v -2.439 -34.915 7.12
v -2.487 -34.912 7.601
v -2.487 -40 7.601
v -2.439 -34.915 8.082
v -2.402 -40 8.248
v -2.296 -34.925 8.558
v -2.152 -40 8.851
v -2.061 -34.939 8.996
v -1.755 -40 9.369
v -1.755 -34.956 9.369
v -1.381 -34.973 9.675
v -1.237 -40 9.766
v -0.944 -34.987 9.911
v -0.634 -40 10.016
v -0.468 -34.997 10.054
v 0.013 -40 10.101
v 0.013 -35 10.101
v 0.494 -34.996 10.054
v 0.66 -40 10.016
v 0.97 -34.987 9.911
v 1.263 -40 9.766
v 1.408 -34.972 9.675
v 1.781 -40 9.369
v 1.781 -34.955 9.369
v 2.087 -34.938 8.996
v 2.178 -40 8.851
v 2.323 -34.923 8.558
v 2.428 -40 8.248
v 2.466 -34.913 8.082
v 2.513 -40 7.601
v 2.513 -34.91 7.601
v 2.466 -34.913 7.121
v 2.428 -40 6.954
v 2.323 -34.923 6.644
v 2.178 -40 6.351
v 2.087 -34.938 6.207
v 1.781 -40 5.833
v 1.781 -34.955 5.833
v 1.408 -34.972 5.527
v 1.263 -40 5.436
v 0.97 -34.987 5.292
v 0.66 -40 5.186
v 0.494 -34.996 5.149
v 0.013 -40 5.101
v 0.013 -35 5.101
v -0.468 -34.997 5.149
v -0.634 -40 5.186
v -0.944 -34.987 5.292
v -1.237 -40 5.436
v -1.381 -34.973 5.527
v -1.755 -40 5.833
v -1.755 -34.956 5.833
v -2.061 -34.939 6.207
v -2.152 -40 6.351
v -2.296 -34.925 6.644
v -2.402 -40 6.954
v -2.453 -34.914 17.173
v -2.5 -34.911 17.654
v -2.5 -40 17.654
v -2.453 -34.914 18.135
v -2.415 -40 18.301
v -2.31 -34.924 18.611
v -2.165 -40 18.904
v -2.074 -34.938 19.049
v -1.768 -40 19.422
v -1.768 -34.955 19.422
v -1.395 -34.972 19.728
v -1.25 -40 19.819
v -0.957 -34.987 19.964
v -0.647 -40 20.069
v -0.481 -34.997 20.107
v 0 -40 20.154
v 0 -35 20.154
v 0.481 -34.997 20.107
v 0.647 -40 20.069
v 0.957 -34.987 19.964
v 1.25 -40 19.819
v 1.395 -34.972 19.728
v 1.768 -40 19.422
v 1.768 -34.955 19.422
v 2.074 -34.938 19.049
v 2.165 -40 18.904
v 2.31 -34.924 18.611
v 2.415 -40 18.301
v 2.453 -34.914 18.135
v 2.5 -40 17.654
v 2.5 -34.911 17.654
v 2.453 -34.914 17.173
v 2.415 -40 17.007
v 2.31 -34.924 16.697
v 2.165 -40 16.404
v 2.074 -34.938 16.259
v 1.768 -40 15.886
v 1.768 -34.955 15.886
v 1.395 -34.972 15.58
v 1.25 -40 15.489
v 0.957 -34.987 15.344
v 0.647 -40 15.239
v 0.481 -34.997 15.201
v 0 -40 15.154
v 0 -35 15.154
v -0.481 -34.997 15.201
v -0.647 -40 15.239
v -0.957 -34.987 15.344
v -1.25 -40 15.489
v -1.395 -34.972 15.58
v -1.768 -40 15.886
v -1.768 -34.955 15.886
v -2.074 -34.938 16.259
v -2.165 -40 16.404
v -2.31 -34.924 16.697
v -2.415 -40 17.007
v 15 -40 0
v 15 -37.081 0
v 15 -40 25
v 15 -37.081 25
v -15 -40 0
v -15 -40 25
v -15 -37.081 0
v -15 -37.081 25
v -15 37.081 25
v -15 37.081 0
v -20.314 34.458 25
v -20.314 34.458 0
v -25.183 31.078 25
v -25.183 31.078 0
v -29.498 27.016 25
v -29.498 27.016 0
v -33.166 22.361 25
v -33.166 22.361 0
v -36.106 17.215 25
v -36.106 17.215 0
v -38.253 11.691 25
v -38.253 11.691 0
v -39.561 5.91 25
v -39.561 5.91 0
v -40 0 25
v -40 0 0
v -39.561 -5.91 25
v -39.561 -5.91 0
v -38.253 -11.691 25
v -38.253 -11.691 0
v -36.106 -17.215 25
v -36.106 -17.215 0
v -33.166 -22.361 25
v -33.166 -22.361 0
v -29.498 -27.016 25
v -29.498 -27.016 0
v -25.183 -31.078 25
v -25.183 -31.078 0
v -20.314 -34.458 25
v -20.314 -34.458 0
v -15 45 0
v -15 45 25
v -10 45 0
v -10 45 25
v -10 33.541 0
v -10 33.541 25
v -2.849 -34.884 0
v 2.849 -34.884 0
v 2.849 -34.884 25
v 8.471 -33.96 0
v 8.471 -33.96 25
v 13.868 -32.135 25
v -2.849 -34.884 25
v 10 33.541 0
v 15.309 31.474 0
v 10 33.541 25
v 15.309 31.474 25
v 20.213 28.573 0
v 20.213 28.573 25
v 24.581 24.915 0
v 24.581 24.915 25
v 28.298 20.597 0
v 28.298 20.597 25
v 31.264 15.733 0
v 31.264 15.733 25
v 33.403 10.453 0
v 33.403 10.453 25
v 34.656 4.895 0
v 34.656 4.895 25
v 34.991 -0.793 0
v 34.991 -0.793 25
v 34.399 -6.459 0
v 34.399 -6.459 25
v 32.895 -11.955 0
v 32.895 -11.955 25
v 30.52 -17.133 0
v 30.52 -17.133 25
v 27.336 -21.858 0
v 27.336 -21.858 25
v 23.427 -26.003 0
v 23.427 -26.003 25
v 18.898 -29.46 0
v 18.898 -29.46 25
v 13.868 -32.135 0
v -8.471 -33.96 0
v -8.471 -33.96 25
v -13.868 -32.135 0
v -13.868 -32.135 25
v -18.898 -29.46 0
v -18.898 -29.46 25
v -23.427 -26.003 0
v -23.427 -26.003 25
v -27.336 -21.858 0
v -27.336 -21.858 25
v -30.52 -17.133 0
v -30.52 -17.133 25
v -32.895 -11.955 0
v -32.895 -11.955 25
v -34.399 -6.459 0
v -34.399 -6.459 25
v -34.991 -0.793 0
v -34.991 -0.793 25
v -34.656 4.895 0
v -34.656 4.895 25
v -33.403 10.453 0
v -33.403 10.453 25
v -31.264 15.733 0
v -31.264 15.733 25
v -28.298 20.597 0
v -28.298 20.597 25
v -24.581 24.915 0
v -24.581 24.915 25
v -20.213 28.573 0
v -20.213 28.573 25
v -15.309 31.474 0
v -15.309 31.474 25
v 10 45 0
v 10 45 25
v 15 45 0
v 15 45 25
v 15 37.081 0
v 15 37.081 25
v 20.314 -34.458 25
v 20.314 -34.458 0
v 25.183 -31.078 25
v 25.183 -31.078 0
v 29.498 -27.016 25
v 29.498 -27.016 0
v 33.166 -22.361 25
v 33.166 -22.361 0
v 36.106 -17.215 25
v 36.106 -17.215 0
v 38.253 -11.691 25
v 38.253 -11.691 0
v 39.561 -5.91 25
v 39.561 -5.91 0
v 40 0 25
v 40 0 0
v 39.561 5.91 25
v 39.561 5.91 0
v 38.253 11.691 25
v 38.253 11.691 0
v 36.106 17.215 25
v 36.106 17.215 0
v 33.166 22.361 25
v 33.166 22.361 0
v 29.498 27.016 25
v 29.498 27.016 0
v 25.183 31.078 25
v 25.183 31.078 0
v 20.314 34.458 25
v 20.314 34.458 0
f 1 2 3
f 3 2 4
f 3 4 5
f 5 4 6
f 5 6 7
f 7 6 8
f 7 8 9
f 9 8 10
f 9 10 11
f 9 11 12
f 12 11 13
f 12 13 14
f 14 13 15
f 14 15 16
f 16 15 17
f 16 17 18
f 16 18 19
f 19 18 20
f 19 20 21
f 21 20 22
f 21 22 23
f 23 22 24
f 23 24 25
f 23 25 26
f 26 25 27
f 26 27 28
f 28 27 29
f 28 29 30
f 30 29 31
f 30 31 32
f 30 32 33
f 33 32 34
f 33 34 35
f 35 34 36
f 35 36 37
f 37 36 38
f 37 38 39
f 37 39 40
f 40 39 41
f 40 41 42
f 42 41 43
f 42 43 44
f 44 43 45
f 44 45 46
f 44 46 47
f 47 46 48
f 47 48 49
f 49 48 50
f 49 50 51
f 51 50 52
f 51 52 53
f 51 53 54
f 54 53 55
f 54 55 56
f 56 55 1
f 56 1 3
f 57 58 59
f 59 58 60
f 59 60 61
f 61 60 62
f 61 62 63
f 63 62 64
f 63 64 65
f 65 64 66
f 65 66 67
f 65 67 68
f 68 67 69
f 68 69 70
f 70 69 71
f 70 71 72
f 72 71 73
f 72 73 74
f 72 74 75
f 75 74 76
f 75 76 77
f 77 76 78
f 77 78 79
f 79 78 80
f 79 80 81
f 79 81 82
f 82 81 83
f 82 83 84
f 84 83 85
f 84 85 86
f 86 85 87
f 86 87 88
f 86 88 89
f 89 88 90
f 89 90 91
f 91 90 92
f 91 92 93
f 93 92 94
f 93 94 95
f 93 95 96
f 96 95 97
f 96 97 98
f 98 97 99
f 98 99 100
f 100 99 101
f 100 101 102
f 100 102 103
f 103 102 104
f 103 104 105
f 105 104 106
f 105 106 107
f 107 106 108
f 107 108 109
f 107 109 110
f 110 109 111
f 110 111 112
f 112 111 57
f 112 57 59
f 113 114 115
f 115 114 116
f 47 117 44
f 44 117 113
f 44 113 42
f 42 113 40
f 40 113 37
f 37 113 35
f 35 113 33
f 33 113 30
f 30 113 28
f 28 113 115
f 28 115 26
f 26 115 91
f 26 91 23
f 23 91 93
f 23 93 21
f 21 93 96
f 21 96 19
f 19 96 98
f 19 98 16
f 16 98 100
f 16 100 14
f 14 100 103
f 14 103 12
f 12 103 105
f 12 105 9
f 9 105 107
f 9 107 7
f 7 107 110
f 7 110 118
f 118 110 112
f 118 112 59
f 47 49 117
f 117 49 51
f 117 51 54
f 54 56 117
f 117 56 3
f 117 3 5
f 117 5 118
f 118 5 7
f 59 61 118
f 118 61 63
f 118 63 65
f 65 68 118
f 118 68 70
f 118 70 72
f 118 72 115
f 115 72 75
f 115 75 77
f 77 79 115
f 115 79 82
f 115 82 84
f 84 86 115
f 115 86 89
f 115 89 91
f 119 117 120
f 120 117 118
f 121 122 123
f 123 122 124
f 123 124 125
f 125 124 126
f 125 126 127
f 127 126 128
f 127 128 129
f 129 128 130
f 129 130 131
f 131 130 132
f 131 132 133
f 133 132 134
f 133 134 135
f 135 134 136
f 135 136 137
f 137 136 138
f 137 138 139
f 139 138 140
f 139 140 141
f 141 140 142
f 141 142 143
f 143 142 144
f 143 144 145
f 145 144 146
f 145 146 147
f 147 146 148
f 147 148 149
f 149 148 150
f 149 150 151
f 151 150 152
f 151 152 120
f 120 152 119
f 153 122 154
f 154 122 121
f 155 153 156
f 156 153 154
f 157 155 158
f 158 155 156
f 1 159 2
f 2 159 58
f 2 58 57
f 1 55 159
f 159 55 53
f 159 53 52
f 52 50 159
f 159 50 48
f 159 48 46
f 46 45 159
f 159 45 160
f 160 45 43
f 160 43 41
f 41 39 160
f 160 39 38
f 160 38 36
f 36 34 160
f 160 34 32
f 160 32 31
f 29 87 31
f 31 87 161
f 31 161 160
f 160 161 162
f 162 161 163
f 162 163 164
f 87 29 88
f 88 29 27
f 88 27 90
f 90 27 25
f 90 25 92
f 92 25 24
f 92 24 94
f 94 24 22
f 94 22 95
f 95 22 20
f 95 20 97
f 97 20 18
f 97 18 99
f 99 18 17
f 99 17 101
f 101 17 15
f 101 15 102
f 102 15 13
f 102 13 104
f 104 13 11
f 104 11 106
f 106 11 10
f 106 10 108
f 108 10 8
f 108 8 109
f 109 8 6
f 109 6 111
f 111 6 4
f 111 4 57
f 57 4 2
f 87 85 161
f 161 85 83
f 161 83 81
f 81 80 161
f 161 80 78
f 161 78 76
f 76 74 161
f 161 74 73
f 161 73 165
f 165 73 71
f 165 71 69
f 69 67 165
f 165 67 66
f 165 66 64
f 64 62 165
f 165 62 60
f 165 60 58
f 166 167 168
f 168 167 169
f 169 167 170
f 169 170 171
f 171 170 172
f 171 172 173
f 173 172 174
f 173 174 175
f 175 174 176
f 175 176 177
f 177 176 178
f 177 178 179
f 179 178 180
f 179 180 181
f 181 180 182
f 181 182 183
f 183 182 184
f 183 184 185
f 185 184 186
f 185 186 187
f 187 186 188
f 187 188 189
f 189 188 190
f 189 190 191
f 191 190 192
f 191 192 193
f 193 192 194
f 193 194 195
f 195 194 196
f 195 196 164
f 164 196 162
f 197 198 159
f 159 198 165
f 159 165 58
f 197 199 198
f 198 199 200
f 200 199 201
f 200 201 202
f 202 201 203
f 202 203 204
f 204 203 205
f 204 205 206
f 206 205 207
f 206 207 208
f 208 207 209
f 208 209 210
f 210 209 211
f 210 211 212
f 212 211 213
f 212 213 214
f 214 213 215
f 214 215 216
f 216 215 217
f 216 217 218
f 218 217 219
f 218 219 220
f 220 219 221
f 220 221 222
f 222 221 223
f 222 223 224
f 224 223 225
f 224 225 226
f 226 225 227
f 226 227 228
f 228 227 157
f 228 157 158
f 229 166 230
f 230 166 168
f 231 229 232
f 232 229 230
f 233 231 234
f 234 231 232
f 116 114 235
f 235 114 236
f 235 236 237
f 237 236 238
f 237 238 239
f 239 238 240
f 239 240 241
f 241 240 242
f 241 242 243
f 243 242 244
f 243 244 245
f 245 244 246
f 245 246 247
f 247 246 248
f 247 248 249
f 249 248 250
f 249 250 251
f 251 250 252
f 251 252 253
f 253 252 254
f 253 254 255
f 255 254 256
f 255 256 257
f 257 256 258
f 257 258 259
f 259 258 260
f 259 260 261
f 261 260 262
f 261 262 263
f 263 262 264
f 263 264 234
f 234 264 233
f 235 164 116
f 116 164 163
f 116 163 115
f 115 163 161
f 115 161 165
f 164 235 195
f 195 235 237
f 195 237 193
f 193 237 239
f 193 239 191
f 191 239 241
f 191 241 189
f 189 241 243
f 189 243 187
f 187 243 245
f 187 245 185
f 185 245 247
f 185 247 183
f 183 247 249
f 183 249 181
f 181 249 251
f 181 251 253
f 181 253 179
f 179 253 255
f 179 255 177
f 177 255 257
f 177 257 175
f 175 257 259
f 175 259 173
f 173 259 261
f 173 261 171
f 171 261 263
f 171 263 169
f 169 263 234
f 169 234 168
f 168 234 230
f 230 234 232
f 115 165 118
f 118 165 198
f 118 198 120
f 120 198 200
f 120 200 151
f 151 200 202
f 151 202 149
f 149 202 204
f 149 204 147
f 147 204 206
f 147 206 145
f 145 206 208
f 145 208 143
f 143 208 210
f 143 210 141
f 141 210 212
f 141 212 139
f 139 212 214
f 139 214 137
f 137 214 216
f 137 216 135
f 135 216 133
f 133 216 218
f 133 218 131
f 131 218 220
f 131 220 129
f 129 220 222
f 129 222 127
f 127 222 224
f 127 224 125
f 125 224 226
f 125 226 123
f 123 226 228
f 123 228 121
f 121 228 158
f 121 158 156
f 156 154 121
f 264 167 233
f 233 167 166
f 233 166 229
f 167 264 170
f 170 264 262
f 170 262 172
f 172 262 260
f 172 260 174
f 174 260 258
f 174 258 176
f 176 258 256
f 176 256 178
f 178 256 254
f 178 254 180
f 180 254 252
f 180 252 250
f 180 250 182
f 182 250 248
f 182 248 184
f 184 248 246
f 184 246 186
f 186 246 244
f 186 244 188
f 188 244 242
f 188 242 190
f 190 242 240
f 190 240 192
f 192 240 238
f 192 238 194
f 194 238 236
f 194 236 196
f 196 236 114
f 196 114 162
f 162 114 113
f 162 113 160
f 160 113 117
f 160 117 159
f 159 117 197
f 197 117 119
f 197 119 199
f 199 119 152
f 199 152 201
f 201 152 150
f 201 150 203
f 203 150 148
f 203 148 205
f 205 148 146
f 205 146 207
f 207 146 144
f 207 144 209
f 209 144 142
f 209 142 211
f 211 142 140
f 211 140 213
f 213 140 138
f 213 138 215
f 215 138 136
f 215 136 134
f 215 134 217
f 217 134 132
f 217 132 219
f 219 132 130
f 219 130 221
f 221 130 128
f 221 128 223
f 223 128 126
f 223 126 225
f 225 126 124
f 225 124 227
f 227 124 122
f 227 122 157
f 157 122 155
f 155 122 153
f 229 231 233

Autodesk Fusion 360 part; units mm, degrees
sketch "Skizze1" plane through (0, 0, 0) normal (0, 0, 1) x (1, 0, 0)
  circle A0 centre (0, 0) radius 35
  circle A1 centre (0, 0) radius 40
  line L0 (10, 30) -> (-10, 30)
  line L1 (-10, 30) -> (-10, 45)
  line L2 (-10, 45) -> (10, 45)
  line L3 (10, 45) -> (10, 30)
  line L4 (15, 35) -> (10, 35)
  line L5 (10, 35) -> (10, 45)
  line L6 (10, 45) -> (15, 45)
  line L7 (15, 45) -> (15, 35)
  line L8 (-10, 35) -> (-15, 35)
  line L9 (-15, 35) -> (-15, 45)
  line L10 (-15, 45) -> (-10, 45)
  line L11 (-10, 45) -> (-10, 35)
  line L12 (-15, -35) -> (15, -35)
  line L13 (15, -35) -> (15, -40)
  line L14 (15, -40) -> (-15, -40)
  line L15 (-15, -40) -> (-15, -35)
  dimension "d1" = 70
  dimension "d2" = 80
extrude "Extrusion1" add sketch "Skizze1" along normal blind 25 contours A0 A1 L3 L4 L7 L12 L13 | A0 A1 L1 L8 L9 L12 L15 | A1 L12 L13 L15 | A1 L3 L4 L5 L7 | A1 L1 L8 L9 L11 | A1 L3 L5 L6 L7 | A1 L14 L15 | A1 L13 L14 | A1 L1 L9 L10 L11
hole "Bohrung1" at (-0.0001, -40, 17.6541) direction (0, 1, 0) diameter 5 depth 15 tip angle 118
hole "Bohrung2" at (0.0132, -40, 7.6012) direction (0, 1, 0) diameter 5 depth 15 tip angle 118
